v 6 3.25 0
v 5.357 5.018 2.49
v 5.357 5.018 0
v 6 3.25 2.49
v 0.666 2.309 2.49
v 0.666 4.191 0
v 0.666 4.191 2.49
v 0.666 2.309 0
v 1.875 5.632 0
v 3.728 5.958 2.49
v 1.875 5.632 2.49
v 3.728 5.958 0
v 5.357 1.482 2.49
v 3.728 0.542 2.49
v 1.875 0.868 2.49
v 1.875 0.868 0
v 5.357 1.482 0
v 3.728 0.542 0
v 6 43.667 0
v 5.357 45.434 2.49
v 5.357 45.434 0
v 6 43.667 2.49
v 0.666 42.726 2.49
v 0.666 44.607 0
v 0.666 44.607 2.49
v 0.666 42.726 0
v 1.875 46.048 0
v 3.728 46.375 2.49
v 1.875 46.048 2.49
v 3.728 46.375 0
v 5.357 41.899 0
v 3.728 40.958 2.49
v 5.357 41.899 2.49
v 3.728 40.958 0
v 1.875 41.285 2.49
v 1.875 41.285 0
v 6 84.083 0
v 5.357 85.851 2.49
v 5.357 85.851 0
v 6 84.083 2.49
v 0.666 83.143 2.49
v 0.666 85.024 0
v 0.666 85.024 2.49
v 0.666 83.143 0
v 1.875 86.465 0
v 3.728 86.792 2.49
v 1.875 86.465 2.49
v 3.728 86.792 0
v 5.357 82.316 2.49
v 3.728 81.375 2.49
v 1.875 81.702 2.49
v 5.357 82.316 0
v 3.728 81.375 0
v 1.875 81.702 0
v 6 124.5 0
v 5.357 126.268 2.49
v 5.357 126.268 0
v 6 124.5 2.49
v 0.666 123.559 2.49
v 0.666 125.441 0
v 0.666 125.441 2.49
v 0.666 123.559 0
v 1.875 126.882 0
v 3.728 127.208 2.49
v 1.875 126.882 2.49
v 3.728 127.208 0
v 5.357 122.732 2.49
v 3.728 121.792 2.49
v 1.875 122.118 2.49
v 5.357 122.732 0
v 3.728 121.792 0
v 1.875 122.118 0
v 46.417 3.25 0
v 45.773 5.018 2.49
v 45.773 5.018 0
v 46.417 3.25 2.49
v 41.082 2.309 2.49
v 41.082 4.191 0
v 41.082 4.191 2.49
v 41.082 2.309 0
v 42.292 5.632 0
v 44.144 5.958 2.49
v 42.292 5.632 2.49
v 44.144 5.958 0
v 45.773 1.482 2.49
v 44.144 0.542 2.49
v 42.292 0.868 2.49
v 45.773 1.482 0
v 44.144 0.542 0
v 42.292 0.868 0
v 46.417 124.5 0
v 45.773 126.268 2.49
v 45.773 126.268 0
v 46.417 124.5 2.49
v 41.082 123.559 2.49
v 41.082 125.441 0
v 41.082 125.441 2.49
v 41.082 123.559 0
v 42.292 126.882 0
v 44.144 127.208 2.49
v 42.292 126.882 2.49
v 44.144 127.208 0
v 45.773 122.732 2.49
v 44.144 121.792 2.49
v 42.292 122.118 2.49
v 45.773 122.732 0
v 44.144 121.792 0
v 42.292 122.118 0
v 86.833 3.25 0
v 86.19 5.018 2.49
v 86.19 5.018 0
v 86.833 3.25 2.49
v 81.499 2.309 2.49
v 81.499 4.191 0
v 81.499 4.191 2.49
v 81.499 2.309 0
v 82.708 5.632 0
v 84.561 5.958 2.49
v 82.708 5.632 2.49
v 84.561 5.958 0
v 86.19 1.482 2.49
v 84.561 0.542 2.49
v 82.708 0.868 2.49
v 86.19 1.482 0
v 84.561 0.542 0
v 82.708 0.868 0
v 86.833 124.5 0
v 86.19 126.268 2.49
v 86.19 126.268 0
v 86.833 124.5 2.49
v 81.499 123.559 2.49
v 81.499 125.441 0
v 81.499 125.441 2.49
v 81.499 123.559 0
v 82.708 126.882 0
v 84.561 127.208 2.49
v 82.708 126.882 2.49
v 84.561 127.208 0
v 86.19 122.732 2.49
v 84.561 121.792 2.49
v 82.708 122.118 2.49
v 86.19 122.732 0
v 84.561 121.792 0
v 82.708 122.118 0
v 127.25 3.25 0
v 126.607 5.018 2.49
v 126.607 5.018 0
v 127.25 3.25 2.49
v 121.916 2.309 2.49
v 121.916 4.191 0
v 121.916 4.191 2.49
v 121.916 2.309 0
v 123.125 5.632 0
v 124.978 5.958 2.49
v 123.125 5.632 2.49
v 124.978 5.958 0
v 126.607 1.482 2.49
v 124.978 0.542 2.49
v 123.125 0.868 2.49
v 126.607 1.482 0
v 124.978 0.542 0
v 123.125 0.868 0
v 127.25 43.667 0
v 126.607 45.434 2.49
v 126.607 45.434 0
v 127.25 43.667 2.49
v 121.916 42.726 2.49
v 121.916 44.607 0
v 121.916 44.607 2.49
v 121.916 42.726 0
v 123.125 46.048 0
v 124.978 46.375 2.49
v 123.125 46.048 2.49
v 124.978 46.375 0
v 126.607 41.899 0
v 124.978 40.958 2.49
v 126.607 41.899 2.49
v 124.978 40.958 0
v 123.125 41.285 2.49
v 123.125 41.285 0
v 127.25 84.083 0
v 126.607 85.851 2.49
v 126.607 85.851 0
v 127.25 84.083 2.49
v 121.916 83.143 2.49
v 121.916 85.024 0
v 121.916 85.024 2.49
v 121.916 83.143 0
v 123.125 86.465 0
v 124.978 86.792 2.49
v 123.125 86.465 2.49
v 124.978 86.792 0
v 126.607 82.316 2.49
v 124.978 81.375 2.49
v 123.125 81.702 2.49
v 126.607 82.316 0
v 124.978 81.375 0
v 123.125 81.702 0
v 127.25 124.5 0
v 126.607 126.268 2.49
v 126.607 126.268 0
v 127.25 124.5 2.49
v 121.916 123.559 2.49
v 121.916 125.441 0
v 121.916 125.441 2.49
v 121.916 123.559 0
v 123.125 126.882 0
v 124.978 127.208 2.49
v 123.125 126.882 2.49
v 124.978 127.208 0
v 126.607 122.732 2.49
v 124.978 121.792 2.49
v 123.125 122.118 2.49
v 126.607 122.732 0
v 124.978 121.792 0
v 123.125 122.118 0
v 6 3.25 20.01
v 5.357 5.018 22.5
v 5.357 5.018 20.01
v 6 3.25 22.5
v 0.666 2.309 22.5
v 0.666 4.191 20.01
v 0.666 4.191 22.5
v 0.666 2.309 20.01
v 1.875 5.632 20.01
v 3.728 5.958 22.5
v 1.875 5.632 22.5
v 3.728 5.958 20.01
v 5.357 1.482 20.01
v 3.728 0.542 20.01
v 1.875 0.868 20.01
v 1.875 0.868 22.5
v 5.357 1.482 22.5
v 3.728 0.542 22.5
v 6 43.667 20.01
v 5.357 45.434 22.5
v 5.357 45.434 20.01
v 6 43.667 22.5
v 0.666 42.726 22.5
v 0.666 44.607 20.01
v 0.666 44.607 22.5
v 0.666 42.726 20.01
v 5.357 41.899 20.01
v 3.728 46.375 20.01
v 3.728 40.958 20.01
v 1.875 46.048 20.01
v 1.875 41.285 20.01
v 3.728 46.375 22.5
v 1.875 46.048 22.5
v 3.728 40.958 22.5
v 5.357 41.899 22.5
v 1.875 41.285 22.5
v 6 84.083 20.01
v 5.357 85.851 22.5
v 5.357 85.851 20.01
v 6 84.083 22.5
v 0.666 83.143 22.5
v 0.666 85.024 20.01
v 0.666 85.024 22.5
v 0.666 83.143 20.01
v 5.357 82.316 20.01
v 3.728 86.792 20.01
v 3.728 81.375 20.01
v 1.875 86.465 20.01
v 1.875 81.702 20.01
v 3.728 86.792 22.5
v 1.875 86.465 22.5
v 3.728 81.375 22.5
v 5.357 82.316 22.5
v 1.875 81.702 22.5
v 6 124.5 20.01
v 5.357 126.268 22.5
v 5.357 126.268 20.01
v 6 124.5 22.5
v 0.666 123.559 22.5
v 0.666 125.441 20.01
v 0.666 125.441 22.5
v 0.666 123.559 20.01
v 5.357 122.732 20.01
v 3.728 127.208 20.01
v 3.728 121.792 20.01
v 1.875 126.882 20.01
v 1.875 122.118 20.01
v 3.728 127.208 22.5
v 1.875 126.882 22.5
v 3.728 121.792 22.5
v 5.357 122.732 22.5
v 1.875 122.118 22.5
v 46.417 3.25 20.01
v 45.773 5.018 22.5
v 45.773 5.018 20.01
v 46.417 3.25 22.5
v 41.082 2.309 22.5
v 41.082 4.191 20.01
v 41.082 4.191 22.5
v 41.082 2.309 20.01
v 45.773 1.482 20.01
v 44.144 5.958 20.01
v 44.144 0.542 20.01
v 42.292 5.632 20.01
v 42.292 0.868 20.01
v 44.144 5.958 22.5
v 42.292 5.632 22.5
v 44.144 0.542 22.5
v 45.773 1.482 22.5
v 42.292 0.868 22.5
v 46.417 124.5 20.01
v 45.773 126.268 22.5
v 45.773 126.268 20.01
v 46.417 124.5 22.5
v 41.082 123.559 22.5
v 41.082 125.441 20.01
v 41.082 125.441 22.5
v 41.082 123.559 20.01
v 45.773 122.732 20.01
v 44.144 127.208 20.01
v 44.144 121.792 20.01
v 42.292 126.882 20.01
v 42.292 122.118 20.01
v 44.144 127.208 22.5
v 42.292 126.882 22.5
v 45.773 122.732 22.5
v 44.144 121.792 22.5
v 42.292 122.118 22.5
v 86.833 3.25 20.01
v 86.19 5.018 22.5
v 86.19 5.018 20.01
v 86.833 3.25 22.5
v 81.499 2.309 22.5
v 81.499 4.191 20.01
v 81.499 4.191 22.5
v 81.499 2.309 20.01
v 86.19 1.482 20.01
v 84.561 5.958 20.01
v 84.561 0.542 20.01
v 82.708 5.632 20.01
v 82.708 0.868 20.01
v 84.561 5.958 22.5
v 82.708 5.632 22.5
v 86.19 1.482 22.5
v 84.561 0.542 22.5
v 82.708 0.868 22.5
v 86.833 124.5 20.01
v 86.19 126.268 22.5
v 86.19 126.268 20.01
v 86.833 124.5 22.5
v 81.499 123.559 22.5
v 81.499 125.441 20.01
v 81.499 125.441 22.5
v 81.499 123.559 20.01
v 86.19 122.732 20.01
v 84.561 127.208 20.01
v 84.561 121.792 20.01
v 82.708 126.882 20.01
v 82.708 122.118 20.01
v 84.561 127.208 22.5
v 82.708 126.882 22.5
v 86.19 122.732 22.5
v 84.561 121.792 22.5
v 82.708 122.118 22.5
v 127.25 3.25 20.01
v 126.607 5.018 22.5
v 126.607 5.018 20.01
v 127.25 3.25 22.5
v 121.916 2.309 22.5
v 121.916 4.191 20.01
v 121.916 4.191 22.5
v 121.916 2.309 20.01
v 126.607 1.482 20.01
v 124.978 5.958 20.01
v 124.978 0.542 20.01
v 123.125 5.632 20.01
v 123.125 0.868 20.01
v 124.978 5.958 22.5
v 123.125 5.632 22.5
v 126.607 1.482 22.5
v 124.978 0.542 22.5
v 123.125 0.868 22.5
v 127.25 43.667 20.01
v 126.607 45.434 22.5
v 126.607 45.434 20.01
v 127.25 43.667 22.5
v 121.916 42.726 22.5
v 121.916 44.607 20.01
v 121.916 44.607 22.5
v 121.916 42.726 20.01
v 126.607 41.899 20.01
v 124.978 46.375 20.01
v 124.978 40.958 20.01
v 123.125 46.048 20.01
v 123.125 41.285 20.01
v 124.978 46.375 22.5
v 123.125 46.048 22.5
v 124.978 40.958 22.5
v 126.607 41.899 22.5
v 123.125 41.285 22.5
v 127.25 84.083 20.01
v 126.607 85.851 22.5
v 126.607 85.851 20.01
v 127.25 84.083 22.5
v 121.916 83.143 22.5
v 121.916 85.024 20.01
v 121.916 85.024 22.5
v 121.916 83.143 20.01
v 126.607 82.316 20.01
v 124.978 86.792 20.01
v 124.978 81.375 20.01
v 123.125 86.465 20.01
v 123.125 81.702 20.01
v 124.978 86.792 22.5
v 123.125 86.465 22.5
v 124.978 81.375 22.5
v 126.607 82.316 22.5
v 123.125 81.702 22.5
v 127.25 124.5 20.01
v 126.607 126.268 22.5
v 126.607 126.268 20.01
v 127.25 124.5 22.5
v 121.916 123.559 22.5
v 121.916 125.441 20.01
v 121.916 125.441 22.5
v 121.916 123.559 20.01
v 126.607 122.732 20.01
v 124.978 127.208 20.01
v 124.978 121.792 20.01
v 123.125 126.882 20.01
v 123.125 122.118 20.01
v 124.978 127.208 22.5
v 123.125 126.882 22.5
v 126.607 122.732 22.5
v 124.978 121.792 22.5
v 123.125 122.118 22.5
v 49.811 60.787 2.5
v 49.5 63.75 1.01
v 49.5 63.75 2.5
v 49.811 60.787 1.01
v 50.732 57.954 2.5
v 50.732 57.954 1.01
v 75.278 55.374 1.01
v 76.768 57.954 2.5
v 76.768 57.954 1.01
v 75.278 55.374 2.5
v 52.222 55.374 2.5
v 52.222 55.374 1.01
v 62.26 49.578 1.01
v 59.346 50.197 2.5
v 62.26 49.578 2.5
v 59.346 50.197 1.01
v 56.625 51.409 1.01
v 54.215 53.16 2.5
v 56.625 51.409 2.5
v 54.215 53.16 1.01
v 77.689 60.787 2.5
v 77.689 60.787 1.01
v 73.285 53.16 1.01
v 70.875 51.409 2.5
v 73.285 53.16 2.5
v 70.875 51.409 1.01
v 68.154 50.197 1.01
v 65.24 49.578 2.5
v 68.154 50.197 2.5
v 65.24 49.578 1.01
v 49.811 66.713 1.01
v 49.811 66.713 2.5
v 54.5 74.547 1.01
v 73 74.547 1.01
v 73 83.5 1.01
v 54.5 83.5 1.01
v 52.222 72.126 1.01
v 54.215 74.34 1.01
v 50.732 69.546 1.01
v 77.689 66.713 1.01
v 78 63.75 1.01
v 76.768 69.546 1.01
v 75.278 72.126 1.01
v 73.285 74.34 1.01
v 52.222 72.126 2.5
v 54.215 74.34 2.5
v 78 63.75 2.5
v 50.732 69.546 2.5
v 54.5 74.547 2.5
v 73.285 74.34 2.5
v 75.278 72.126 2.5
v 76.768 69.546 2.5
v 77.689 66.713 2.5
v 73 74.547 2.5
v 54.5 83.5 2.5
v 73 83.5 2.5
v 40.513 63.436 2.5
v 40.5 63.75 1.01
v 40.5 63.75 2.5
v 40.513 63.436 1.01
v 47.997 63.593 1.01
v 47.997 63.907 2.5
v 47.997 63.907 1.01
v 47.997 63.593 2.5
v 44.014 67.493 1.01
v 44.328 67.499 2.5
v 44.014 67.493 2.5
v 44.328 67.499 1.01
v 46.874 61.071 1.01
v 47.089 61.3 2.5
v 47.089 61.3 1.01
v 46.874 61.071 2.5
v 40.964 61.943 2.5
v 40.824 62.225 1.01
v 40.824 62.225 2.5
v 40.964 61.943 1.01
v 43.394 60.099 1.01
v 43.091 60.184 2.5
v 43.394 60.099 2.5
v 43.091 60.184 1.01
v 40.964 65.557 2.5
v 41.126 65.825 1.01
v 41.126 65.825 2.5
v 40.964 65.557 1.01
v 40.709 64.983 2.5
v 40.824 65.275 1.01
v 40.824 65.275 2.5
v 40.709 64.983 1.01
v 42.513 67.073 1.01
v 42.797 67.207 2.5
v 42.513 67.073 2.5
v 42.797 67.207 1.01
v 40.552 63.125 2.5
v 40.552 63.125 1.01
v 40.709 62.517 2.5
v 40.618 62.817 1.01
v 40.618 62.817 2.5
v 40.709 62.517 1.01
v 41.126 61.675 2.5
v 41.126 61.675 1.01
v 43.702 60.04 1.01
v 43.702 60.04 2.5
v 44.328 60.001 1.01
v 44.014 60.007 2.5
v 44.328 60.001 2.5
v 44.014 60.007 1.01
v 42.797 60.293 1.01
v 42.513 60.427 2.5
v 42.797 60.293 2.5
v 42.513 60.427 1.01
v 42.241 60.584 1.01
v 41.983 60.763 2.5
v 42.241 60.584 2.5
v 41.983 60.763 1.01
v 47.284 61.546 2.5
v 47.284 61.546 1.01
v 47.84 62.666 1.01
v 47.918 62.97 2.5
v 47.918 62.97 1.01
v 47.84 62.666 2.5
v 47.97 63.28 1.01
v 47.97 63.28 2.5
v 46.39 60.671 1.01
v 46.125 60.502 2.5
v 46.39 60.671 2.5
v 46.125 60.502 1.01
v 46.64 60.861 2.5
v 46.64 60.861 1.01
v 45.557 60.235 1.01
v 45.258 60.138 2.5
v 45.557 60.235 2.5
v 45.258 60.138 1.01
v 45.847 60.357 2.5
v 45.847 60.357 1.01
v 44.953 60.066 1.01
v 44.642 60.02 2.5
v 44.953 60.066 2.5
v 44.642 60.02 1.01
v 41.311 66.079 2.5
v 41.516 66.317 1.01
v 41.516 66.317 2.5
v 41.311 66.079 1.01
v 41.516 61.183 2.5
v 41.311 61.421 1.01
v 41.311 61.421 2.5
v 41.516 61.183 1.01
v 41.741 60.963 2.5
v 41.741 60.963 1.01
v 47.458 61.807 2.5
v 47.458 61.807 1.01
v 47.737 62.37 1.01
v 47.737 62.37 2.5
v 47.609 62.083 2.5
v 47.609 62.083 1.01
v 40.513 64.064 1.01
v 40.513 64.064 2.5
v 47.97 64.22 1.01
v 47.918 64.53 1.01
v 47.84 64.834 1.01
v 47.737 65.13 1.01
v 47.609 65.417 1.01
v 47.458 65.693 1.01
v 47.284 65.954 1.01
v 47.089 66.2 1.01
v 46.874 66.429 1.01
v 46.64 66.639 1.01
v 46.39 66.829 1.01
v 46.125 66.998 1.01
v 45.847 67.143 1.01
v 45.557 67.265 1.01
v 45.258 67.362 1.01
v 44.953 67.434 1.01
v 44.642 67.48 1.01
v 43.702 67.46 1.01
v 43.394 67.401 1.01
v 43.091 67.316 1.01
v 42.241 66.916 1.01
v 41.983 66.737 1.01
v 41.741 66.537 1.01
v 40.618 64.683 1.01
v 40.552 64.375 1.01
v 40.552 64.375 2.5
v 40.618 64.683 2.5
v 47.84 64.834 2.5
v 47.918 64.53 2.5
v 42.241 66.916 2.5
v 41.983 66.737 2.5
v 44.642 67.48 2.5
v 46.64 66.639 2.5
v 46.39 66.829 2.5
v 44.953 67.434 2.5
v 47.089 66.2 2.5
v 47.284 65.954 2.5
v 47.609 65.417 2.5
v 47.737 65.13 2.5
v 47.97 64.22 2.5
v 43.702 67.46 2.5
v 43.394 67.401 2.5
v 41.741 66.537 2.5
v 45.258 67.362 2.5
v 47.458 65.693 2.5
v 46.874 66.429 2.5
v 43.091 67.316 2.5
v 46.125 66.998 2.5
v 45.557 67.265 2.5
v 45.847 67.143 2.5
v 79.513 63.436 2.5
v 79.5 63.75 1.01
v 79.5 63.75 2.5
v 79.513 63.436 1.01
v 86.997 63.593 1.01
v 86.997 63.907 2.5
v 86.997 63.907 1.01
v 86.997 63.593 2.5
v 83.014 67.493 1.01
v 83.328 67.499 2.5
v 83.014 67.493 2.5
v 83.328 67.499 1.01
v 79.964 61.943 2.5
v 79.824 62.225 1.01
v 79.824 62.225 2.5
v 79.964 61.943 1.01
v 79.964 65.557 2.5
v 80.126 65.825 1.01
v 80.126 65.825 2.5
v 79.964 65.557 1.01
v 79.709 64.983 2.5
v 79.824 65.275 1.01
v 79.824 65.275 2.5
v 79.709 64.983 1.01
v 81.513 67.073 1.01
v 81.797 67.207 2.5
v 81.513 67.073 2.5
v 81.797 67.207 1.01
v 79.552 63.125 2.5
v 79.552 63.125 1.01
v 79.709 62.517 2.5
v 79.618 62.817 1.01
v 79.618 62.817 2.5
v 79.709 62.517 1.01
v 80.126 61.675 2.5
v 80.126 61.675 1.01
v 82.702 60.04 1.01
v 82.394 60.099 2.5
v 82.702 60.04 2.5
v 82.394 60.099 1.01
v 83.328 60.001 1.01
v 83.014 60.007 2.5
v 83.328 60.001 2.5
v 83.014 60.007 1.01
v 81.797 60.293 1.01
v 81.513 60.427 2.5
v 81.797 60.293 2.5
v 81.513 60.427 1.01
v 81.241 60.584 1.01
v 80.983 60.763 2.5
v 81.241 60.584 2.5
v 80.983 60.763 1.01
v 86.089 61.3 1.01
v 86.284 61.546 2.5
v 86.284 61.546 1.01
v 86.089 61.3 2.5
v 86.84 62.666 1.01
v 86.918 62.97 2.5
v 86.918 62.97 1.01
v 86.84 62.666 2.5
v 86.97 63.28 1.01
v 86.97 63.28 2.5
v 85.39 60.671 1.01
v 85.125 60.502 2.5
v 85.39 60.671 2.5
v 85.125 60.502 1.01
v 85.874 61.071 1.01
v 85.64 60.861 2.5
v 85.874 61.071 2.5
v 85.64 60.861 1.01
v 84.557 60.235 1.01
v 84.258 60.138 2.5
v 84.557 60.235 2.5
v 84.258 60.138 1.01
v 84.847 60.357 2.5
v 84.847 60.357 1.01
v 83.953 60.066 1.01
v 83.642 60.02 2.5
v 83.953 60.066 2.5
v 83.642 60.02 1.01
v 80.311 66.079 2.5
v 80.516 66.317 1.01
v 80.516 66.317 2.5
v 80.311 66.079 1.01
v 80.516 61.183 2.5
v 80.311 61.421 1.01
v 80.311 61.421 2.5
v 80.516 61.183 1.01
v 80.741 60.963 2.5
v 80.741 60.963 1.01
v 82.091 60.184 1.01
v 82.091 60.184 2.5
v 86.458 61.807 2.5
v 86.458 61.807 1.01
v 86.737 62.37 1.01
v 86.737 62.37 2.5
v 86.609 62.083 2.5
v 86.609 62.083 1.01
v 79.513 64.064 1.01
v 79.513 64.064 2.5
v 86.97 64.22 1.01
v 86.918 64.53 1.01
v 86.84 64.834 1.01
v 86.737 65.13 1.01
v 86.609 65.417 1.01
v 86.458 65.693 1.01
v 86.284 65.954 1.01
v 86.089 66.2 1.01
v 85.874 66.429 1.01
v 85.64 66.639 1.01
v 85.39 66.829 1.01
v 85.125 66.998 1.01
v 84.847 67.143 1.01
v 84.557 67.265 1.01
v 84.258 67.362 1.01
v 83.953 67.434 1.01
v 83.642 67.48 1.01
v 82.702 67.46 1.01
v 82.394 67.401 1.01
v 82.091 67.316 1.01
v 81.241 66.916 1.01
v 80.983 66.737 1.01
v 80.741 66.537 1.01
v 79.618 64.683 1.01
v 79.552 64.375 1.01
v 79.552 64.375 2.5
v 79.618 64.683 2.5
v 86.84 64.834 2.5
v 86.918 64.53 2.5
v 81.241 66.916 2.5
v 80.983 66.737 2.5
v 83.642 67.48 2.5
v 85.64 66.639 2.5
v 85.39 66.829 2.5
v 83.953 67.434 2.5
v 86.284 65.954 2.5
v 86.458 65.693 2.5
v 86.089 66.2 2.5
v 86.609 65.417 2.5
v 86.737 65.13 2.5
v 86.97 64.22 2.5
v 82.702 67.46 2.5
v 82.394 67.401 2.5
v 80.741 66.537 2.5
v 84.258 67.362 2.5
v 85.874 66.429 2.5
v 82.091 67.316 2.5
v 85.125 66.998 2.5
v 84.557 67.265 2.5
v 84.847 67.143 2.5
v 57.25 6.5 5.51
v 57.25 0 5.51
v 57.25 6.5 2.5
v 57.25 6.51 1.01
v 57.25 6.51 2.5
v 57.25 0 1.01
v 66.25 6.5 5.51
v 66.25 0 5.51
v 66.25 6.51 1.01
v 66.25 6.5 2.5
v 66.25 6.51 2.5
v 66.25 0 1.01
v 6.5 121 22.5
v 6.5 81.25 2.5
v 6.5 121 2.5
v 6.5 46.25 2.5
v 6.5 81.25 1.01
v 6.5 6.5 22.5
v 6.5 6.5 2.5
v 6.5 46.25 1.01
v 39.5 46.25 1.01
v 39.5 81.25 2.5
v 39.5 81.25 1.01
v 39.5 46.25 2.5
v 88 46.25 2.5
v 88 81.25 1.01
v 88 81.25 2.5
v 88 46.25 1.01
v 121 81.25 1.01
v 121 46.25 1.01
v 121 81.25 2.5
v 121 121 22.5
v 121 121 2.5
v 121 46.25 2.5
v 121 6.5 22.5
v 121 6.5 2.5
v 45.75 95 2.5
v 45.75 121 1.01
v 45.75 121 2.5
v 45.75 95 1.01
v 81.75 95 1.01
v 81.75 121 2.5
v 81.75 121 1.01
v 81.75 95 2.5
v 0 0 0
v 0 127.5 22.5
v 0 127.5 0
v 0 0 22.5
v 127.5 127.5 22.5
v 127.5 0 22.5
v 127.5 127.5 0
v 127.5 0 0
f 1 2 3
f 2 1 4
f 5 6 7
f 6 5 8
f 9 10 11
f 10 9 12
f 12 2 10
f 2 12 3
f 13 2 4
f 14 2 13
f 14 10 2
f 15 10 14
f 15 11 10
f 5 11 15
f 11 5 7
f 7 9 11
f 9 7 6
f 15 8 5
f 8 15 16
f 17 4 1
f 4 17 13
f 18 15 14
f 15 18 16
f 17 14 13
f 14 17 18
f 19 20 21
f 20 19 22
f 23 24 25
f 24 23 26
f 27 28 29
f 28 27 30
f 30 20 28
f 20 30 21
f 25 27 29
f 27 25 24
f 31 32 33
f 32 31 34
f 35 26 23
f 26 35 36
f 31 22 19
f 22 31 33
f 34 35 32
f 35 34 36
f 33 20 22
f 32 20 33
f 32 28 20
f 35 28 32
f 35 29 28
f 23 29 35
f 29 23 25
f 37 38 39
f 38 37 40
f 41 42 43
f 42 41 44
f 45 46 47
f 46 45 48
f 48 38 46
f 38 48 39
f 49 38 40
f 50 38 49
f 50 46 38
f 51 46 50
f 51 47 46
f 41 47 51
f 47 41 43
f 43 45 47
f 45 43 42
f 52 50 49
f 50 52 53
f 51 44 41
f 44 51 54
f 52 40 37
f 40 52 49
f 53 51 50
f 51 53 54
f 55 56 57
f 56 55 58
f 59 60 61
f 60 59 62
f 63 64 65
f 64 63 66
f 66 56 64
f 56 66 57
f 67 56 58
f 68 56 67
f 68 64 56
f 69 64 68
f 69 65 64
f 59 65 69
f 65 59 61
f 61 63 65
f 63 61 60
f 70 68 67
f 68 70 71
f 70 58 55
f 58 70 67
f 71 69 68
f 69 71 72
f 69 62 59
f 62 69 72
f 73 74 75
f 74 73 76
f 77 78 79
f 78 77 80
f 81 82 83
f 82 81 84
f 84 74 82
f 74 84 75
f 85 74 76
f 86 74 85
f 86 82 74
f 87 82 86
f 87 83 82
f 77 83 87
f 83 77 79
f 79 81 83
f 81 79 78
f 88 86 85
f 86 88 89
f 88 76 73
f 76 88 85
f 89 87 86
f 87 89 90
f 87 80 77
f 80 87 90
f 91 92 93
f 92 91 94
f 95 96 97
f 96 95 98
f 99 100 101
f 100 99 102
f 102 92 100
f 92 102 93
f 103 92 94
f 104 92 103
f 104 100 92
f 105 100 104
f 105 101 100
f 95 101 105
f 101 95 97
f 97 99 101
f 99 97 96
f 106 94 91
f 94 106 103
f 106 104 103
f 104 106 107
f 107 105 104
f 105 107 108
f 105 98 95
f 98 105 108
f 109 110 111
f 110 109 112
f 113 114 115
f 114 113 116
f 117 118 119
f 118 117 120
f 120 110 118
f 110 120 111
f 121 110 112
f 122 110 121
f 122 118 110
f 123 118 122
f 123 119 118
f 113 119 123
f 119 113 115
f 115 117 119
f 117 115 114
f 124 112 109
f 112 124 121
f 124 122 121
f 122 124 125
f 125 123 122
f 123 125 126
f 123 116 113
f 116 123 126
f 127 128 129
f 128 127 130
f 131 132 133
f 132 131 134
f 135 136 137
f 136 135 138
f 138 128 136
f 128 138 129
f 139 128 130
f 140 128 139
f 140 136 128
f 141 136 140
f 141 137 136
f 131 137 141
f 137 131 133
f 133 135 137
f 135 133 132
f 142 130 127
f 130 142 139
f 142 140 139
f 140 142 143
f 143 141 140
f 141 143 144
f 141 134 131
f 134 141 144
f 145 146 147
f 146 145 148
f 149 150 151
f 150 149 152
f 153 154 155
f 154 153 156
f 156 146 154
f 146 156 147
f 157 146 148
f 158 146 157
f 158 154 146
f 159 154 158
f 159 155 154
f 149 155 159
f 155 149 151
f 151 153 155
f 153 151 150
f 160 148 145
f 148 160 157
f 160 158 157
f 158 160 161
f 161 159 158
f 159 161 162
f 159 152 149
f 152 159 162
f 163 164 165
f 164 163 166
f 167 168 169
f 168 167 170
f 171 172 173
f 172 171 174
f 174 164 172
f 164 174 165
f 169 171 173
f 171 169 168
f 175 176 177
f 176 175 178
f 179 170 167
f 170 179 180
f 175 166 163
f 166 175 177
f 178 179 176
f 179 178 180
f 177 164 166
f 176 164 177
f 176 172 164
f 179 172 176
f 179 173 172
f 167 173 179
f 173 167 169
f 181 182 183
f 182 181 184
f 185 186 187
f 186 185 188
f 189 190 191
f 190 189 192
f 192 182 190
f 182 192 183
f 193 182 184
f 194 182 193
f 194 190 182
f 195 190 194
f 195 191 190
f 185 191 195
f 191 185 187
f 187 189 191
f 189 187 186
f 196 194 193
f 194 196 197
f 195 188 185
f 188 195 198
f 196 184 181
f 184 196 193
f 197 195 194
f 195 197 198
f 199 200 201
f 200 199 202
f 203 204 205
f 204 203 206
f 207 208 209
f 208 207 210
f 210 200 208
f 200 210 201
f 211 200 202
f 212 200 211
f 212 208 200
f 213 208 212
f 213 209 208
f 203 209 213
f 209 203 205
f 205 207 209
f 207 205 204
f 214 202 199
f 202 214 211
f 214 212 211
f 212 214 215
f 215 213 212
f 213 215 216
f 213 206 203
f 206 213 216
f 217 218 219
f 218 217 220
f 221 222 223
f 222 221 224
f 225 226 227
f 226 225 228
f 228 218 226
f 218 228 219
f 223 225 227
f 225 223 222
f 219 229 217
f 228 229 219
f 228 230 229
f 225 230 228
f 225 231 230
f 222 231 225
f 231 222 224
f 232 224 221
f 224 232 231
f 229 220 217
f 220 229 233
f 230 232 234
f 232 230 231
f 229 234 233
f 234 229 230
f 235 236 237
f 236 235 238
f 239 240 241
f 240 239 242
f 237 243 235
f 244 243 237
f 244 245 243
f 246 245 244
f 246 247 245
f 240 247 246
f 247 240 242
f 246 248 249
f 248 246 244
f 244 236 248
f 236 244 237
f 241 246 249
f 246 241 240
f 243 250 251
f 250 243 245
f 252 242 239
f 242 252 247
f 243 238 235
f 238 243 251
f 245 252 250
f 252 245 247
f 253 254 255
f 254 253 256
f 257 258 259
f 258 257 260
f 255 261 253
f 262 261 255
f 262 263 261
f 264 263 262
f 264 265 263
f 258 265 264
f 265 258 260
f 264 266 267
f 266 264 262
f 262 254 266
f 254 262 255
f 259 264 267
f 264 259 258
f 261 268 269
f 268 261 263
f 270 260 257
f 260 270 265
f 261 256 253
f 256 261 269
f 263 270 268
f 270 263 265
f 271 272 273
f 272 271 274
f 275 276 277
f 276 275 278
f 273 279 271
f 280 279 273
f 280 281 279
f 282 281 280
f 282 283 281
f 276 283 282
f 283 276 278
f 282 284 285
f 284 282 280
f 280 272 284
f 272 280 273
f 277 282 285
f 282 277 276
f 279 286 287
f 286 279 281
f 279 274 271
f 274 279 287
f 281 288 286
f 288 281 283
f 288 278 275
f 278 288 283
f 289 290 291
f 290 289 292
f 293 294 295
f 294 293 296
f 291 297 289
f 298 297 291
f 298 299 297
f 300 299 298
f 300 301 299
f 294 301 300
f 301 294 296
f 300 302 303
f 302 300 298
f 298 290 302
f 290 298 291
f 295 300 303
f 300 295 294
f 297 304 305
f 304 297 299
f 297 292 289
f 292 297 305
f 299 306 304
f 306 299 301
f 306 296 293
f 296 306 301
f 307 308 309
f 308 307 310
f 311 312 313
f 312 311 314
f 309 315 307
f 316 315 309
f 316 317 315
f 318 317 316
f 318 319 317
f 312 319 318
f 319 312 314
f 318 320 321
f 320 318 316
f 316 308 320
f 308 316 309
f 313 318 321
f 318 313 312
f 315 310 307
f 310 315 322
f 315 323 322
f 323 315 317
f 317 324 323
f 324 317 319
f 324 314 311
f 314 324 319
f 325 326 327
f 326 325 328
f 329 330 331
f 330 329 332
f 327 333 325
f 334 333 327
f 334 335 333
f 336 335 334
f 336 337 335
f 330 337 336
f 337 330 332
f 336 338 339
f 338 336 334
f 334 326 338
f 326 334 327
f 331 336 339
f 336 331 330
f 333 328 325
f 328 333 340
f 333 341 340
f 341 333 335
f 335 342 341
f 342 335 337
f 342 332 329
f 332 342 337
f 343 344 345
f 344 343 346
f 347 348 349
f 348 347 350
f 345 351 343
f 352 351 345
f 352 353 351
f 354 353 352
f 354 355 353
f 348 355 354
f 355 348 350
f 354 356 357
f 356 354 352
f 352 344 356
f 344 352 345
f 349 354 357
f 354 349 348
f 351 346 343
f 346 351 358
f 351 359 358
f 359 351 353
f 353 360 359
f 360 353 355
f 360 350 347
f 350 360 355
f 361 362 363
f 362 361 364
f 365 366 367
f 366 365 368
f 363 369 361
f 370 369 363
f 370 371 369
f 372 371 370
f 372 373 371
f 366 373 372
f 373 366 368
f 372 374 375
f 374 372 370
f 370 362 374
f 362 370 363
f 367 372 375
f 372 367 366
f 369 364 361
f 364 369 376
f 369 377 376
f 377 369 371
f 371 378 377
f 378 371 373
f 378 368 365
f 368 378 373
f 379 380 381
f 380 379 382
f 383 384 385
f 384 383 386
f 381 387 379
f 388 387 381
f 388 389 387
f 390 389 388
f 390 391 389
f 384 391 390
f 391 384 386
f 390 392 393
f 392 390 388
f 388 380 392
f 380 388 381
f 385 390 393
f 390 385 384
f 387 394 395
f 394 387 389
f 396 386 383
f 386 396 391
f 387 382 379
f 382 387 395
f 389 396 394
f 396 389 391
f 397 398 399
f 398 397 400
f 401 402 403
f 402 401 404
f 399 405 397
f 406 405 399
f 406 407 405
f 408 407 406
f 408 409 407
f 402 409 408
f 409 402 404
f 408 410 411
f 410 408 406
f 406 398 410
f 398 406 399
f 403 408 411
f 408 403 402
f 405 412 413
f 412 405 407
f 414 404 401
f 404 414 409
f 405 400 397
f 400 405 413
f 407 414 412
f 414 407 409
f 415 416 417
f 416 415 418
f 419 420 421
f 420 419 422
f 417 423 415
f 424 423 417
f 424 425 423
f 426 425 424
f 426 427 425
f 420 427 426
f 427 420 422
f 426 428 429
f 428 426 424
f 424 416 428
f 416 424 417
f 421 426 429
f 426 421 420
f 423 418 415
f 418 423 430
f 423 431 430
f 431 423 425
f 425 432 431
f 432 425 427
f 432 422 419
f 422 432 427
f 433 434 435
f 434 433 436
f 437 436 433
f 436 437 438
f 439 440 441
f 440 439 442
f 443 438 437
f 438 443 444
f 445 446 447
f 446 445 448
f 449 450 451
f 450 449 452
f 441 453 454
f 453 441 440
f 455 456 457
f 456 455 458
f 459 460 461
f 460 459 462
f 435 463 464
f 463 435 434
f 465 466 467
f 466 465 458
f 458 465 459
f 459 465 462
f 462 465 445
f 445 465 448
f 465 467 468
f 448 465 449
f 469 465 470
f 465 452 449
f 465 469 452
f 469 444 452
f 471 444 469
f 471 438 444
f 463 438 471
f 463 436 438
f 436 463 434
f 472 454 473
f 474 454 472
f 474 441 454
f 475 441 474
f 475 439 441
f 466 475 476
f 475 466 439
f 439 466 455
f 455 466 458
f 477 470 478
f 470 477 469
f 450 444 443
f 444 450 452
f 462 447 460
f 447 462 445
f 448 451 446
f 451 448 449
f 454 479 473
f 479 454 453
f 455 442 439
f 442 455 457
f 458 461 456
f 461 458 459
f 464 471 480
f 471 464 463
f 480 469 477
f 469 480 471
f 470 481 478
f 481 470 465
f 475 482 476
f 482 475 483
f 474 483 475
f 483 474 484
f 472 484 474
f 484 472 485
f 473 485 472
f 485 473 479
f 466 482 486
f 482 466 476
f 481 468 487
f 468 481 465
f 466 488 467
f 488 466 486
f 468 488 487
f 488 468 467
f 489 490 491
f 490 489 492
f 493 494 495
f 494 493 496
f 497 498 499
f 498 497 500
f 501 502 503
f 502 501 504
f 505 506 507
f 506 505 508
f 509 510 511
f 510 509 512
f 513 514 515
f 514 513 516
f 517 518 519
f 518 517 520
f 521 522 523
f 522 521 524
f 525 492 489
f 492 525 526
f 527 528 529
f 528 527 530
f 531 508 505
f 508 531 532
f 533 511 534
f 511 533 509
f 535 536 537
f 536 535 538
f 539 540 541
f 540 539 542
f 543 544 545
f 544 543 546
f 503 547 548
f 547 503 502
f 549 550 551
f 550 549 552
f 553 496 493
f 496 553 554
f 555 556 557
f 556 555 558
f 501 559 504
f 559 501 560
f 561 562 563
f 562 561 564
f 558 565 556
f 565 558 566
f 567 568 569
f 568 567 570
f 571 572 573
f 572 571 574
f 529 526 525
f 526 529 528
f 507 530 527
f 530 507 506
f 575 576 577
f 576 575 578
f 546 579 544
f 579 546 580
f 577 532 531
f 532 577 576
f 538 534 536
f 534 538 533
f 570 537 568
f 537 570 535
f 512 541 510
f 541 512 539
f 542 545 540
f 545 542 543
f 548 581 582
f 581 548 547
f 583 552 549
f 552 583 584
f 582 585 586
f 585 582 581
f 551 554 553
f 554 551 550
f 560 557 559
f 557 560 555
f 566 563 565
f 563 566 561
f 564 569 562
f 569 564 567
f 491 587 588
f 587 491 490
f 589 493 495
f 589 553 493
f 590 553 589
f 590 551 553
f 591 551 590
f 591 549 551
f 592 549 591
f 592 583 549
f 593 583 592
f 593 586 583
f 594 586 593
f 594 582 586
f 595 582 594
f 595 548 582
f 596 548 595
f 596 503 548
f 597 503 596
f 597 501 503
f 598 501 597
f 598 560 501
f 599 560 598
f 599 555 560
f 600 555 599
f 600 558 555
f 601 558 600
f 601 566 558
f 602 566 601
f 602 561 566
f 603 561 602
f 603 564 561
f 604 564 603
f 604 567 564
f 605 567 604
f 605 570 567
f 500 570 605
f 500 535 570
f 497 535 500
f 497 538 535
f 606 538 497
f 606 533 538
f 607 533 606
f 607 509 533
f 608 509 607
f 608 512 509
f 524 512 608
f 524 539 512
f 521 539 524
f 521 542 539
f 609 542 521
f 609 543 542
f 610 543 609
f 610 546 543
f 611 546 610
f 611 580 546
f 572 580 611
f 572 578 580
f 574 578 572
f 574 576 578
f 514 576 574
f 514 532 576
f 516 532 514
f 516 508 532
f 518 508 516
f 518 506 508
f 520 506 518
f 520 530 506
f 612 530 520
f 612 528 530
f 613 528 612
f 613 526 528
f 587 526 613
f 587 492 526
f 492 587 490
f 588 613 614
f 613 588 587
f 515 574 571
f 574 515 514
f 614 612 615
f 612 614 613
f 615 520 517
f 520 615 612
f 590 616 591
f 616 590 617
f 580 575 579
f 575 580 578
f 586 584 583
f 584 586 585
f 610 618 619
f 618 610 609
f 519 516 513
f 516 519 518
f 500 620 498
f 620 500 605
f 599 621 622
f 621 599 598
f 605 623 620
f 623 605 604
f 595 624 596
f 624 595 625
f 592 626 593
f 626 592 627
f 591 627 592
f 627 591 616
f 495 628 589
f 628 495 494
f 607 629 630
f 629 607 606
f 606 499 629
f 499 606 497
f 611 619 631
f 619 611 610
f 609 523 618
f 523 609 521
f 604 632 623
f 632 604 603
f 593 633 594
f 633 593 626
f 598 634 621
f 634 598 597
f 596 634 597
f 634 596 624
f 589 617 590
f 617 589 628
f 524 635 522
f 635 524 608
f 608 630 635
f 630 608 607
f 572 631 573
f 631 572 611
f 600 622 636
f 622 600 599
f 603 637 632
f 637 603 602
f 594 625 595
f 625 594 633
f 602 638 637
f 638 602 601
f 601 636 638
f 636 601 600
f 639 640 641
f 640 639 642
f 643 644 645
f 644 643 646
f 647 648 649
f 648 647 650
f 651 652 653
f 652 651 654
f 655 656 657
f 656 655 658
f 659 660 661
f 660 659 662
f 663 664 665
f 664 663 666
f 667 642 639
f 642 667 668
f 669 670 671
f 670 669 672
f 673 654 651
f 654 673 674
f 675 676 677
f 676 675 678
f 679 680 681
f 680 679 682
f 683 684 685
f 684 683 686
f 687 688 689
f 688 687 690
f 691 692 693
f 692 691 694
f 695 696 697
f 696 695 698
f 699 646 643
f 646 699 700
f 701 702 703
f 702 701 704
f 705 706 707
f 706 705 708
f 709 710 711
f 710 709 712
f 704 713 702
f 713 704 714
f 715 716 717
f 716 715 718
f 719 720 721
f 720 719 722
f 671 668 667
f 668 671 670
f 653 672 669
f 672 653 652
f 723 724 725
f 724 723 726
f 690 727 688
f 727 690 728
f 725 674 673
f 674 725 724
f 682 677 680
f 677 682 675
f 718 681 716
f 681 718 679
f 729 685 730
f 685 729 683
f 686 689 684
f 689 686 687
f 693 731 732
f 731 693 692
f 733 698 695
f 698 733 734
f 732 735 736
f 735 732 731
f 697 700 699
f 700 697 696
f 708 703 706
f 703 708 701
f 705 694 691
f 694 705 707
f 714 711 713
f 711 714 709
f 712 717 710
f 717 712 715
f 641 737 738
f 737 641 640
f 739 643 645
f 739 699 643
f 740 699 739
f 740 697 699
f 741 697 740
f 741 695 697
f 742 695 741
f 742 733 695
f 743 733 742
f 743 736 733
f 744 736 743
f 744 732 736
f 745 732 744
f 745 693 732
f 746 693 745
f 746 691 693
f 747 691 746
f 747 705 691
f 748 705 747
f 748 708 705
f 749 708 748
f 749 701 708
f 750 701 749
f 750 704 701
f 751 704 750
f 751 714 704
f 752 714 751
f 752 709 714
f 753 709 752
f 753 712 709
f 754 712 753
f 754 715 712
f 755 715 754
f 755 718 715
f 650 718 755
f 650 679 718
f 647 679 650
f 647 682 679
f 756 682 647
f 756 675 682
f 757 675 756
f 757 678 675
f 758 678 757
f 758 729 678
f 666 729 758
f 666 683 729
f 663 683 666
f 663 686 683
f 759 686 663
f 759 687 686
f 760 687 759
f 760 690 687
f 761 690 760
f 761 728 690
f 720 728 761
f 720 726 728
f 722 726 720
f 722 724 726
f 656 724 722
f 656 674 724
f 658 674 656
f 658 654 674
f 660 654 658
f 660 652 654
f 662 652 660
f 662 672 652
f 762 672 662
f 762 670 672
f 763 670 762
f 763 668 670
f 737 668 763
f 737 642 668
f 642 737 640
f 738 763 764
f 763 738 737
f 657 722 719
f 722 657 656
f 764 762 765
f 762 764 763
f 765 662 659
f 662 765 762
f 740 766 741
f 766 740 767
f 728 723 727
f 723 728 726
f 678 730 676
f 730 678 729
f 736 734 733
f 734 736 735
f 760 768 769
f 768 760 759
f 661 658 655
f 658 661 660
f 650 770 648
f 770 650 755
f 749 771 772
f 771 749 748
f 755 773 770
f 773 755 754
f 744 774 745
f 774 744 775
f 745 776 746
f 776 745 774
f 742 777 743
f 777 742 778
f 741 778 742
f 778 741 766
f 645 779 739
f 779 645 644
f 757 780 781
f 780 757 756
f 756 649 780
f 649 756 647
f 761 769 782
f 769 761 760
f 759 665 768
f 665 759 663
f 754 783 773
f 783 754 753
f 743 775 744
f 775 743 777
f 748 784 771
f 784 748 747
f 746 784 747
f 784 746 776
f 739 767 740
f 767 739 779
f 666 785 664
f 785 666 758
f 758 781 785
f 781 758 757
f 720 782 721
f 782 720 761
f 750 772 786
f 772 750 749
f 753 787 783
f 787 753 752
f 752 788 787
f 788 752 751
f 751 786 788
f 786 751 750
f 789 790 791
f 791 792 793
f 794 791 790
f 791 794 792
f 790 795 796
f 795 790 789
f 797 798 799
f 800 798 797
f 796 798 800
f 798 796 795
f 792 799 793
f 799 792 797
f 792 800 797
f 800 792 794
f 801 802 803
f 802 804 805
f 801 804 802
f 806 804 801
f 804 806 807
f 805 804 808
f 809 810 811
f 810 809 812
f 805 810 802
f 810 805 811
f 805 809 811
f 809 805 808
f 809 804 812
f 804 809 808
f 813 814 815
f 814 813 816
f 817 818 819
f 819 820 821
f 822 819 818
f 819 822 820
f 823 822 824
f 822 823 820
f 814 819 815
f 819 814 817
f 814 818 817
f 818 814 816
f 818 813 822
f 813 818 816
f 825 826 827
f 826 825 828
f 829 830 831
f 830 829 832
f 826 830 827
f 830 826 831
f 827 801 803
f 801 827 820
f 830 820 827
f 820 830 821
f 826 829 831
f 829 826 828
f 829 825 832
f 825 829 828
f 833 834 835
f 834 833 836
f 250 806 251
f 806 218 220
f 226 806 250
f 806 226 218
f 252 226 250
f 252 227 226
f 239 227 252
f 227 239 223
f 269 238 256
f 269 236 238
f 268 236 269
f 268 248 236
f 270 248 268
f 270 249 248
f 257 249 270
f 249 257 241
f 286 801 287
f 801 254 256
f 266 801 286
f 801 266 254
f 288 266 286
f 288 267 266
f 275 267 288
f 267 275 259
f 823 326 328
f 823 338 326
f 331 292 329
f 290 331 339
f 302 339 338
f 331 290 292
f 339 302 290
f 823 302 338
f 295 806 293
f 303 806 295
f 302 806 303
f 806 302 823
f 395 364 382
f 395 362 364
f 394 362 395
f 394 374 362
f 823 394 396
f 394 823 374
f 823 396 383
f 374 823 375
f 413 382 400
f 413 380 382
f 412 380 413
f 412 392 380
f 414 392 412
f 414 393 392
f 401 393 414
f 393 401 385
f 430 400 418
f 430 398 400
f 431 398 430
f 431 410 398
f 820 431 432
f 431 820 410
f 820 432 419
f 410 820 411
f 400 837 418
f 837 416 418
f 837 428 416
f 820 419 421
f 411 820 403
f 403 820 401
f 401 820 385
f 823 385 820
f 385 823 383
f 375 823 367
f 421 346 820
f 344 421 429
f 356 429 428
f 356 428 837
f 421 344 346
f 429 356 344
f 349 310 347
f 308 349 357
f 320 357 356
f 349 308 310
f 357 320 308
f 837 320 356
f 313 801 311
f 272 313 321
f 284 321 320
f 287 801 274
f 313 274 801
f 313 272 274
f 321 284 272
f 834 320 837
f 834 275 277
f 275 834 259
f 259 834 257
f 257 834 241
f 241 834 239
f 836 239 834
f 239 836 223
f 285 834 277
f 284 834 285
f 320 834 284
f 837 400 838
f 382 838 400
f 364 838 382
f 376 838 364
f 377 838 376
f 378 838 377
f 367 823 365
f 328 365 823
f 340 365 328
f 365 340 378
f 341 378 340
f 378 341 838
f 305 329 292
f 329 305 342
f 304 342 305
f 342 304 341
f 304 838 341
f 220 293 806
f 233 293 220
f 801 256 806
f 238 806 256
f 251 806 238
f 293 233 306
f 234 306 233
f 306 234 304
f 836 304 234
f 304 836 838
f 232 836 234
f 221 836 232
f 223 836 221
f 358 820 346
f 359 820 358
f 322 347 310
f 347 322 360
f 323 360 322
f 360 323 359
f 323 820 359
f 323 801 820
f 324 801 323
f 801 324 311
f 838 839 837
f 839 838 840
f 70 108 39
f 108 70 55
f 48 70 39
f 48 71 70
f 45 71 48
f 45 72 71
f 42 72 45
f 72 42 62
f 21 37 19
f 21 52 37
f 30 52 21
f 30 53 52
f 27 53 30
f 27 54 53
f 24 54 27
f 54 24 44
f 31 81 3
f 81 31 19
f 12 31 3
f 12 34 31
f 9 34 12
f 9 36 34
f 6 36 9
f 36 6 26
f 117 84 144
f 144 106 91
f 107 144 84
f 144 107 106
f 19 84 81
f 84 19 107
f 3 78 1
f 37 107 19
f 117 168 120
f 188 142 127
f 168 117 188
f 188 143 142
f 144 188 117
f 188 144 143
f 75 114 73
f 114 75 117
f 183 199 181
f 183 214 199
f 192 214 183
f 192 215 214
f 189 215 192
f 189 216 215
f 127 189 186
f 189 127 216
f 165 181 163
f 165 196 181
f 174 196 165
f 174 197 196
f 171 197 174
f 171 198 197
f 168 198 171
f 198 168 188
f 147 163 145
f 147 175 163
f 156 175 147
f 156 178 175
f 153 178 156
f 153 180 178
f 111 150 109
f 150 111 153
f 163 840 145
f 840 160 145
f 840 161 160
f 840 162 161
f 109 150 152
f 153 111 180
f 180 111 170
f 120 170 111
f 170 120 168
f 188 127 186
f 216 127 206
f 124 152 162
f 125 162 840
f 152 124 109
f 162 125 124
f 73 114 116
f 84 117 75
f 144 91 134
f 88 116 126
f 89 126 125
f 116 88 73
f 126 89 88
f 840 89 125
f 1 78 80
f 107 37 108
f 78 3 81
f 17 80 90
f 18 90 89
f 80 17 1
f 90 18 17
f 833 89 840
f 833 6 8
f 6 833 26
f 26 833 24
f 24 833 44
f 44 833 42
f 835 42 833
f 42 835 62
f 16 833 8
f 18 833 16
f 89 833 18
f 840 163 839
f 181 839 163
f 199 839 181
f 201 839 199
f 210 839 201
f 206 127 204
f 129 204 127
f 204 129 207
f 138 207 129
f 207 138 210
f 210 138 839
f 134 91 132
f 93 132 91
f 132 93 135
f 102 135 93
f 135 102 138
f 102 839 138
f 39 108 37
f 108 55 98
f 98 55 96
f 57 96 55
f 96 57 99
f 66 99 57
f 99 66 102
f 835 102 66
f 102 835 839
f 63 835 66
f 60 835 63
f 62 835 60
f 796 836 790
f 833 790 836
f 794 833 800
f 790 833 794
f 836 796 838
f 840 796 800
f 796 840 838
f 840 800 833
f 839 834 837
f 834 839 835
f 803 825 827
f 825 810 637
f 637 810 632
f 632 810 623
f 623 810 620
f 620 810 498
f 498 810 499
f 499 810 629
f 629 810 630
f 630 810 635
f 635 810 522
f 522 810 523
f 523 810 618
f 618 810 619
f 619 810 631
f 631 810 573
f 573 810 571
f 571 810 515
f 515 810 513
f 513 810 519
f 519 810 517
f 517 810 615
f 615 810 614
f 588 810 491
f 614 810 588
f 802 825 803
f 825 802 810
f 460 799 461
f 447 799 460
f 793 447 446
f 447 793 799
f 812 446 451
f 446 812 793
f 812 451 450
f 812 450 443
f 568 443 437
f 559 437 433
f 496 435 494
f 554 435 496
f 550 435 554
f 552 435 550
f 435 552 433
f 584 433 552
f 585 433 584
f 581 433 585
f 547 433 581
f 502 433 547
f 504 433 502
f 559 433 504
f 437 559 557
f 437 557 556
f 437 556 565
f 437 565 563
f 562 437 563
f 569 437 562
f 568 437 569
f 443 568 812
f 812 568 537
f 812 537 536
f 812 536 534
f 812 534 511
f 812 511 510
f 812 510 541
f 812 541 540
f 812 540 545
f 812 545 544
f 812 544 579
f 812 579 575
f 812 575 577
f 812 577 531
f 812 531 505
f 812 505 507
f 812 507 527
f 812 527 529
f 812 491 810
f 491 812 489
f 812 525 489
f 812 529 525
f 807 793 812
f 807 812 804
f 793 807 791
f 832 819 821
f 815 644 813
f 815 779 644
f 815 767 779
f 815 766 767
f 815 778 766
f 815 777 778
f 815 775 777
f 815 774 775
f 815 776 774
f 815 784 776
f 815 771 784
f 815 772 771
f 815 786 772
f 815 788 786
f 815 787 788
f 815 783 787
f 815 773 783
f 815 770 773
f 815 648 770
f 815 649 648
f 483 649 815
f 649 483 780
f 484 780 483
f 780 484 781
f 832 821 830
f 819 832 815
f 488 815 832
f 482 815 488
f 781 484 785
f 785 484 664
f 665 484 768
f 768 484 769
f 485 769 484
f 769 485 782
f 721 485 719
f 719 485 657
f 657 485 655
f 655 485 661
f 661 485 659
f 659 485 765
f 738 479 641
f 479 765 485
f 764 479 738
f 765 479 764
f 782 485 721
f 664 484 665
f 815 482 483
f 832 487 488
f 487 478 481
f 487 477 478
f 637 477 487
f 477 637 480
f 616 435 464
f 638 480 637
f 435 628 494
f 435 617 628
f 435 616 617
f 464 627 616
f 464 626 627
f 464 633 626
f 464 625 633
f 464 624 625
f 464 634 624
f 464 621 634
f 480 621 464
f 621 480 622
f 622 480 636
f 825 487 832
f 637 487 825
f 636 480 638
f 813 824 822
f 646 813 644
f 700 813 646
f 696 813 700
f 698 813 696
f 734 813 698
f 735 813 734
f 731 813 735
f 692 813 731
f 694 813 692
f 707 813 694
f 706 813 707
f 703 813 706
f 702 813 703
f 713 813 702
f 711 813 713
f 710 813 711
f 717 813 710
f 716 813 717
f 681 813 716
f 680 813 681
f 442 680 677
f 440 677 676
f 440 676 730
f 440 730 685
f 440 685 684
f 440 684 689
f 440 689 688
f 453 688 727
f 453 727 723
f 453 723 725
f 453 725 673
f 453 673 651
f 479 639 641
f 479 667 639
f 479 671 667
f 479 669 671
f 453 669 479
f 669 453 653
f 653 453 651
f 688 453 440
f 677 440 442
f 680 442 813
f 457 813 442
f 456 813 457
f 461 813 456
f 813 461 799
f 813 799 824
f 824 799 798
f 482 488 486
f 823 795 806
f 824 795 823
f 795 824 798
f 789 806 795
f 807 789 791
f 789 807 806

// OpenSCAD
// file: second_motor_holder.scad
include <metrics.scad>


module second_motor_holder(){

    difference(){
        //the main mount of the motor
        cube([motor_d + motor_mount_w + motor_hole_w * 2,
            motor_h + mount_wall_thickness,
            motor_d + motor_mount_w + laser_pointer_holder_l]);

        translate([0, -mount_wall_thickness, (motor_d + motor_mount_w + laser_pointer_holder_l) / 2]){
            motor_hole();
        }
        
        //hole for the knob of the motor on the base plate
        translate([(motor_d + motor_mount_w + motor_hole_w * 2) / 2 - motor_ending_h/2,
                (laser_pointer_holder_l) / 2 - motor_ending_w/2,
                -preview_margin]){
            cube([motor_ending_h, motor_ending_w, motor_ending_l]);
        }
    }
}

module motor_hole(){
    //motor (round section)
    translate([(motor_d + motor_mount_w + motor_hole_w*2) / 2,
            0,
            0]){
        rotate([90, 0, 180]){
            cylinder(h=motor_h, d1=motor_d, d2=motor_d);
        }
    }
    //motor (square section)
    translate([(motor_d + motor_mount_w + motor_hole_w*2) / 2 - motor_square_w/2,
           0,
            //middle of circle - diameter of circle / 2 - halfe of the square part / 2
            - motor_d / 2 - motor_square_h/2]){
            cube([motor_square_w, motor_h, motor_square_h]);
    }

    //holes for screws
    space_next_to_hole = (motor_d + motor_mount_w + motor_hole_w * 2 - motor_d) / 2;
    //left
    translate([-motor_hole_w/2 + space_next_to_hole,
            0,
            0]){
        rotate([90, 0, 180]){
            cylinder(h=laser_pointer_holder_l + motor_hole_w + preview_margin*2,
                    d1=motor_mount_w, d2=motor_mount_w,
                    $fn=_fn);
        }
    }
    //right
    translate([motor_hole_w/2 + space_next_to_hole + motor_d,
            0,
            0]){
        rotate([90, 0, 180]){
            cylinder(h=laser_pointer_holder_l + motor_hole_w + preview_margin*2,
                    d1=motor_mount_w, d2=motor_mount_w,
                    $fn=_fn);
        }
    }

}

//test
second_motor_holder();


//animation
$vpt = [(motor_d + motor_mount_w + motor_hole_w * 2) / 2,
            laser_pointer_holder_l / 2,
            (motor_d + motor_mount_w + laser_pointer_holder_l) / 2];

$vpr = [60, 0, 360 * $t];

$vpd = 400;
// file: metrics.scad
/* [General] */
mount_wall_thickness = 2;


/* [Motor] */
motor_d = 28.5;
motor_h = 20;

motor_square_w = 18.5;
motor_square_h = 5.5 * 2;

motor_mount_w = 7.5;

motor_hole_w = 10.5;

/* [Motor Ending] */
motor_ending_w = 3;
motor_ending_h = 5;
motor_ending_l = 6;

/* [Motor Mount] */
motor_mount_thickness = 7 + mount_wall_thickness;


/* [Hidden] */
_fn = 75;
preview_margin = 0.01;

/* [Laser pointer] */
laser_pointer_holder_l = 20;
laser_pointer_d = 13;
screw_terminal_length = 14;

/* [Screw] */
//the diameter of the screw
screw_d = 4;
// main file
include <metrics.scad>

use <second_motor_holder.scad>

component_cut_out_depth = 1.5;
wall_thickness = 6.5;

driver_board_w = 33;
driver_board_l = 35;

gap_between_components = 5;

base_plate_w = driver_board_w * 2 + gap_between_components * 4 + motor_d;
base_plate_base_h = component_cut_out_depth + 1;
base_plate_h = component_cut_out_depth + motor_h;


//d1 mini dimensions
esp_w = 36;
esp_l = 26;

usb_c_jack_w = 9;
usb_c_jack_h = 4.5;

//the amount of magnets per side
amount_of_magnets = 3;
magnet_d = 5.5;
magnet_h = 2.5;



difference(){
    //base case(body)
    cube([base_plate_w + 2*wall_thickness, base_plate_w + 2*wall_thickness, component_cut_out_depth + 1 + motor_h]);
    //remove inside
    translate([wall_thickness, wall_thickness, component_cut_out_depth + 1]) {
        cube([base_plate_w, base_plate_w, base_plate_h]);
    }

    translate([0, 0, base_plate_base_h - component_cut_out_depth + preview_margin]){
        //space for USB jack
        translate([base_plate_w/2, -preview_margin, component_cut_out_depth]){
            cube([usb_c_jack_w, wall_thickness + 2*preview_margin, usb_c_jack_h]);
        }
        //holes for the motor-drivers
        //left
        translate([wall_thickness,
                    base_plate_w/2 + wall_thickness - driver_board_l/2,
                    0]){
            cube([driver_board_w, driver_board_l, component_cut_out_depth]);
        }
        //right
        translate([wall_thickness + base_plate_w -driver_board_w,
                    base_plate_w/2 + wall_thickness - driver_board_l/2,
                    0]){
            cube([driver_board_w, driver_board_l, component_cut_out_depth]);
        } 
        //hole for the esp
        translate([wall_thickness + base_plate_w/2 - esp_w/2,
                    wall_thickness + base_plate_w - esp_l,
                    0]){
            cube([esp_w, esp_l, component_cut_out_depth]);
        }
        //motor hole
        translate([wall_thickness + base_plate_w/2 - motor_d,
                wall_thickness + base_plate_w/2,
                0]) {
            rotate([90, 0, 0]){
                motor_hole();
            }
        }
    }

    //top magnets
    translate([0, 0, component_cut_out_depth + 1 + motor_h - magnet_h + preview_margin]) {
        magnets();
    }

    //bottom magnets
    translate([0, 0, -preview_margin]) {
        magnets();
    }
}


module magnets(){
    //magnet holes
    magnet_spacing = ((base_plate_w + 2*wall_thickness - magnet_d) / amount_of_magnets) - (wall_thickness/2 - magnet_d/2)/(amount_of_magnets-1);
    for (x = [0:amount_of_magnets]) {
        for (y = [0:amount_of_magnets]){
            if (y == 0 || y == amount_of_magnets || x == 0 || x ==amount_of_magnets) {
                translate([(wall_thickness/2 - magnet_d/2 + magnet_d/2) + x * magnet_spacing,
                        (wall_thickness/2 - magnet_d/2 + magnet_d/2) + y * magnet_spacing,
                        0]){
                    cylinder(h=magnet_h, d1=magnet_d, d2=magnet_d);
                }
            }
        }
    }
}
